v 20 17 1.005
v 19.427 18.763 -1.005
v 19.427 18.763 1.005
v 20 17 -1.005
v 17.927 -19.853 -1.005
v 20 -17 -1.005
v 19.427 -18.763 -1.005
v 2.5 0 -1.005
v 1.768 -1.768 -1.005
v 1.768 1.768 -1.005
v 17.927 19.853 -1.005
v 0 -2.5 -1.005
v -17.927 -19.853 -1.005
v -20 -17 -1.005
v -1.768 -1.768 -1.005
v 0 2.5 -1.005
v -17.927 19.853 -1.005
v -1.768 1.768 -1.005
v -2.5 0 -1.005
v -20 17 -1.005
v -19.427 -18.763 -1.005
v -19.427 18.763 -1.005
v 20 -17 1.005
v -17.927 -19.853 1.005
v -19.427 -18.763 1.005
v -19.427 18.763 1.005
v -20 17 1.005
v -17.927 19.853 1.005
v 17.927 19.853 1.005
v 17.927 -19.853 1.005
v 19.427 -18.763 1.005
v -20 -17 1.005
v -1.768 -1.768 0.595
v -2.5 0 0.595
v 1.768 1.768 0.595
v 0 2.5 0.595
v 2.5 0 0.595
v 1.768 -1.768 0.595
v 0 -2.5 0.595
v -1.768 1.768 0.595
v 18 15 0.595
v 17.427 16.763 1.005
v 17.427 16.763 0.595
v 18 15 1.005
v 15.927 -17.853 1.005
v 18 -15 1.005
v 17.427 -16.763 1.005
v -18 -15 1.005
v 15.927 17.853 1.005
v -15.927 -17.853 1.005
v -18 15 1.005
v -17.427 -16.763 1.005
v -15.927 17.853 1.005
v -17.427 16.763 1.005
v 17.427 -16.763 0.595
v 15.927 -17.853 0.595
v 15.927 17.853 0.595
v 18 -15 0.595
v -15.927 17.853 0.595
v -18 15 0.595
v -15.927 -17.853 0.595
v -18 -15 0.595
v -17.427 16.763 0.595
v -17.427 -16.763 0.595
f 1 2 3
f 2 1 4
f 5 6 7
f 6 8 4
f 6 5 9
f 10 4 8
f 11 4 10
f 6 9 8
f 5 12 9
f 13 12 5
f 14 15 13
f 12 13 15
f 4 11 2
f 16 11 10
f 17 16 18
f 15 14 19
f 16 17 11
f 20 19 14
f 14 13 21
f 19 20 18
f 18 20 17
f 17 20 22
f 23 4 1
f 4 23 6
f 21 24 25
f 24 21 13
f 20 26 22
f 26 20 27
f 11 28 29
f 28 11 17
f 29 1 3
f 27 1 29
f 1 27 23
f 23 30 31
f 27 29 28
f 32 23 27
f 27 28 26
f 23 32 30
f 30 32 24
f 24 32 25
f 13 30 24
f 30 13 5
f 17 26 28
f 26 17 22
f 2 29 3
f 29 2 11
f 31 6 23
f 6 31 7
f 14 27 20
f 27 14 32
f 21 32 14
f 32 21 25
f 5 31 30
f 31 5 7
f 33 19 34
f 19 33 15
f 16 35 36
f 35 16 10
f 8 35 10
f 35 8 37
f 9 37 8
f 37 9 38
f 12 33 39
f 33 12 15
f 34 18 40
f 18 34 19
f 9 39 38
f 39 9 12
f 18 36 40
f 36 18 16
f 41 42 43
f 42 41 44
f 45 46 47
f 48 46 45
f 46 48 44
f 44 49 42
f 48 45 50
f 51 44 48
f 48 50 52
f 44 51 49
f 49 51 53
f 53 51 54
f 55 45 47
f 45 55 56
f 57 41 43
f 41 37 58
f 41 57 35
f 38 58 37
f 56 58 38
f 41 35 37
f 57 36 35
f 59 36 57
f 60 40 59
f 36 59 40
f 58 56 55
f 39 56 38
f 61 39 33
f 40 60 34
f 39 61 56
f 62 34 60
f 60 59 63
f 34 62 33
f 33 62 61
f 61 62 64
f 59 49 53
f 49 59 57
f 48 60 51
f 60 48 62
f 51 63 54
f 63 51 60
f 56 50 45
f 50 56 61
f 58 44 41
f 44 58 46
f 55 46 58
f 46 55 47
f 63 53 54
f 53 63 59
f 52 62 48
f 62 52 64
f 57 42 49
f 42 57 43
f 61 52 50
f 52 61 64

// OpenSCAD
// Parameters
plate_size = 40;
plate_thickness = 2;
corner_radius = 3;
hole_diameter = 5; // Slightly enlarged from 4 to 5
groove_depth = 0.4;
groove_margin = 2; // Distance from edge to groove

// Module for rounded square
module rounded_square_plate(size, thickness, radius, hole_d) {
    difference() {
        // Base plate with rounded corners
        minkowski() {
            cube([size - 2*radius, size - 2*radius, thickness], center=true);
            cylinder(r=radius, h=0.01, center=true);
        }

        // Central hole
        translate([0, 0, -thickness])
            cylinder(h=3*thickness, d=hole_d, center=true);

        // Recessed groove near the top surface
        translate([0, 0, thickness/2 - groove_depth/2])
            minkowski() {
                cube([size - 2*groove_margin - 2*radius, size - 2*groove_margin - 2*radius, groove_depth], center=true);
                cylinder(r=radius, h=0.01, center=true);
            }
    }
}

// Render the plate
rounded_square_plate(plate_size, plate_thickness, corner_radius, hole_diameter);
